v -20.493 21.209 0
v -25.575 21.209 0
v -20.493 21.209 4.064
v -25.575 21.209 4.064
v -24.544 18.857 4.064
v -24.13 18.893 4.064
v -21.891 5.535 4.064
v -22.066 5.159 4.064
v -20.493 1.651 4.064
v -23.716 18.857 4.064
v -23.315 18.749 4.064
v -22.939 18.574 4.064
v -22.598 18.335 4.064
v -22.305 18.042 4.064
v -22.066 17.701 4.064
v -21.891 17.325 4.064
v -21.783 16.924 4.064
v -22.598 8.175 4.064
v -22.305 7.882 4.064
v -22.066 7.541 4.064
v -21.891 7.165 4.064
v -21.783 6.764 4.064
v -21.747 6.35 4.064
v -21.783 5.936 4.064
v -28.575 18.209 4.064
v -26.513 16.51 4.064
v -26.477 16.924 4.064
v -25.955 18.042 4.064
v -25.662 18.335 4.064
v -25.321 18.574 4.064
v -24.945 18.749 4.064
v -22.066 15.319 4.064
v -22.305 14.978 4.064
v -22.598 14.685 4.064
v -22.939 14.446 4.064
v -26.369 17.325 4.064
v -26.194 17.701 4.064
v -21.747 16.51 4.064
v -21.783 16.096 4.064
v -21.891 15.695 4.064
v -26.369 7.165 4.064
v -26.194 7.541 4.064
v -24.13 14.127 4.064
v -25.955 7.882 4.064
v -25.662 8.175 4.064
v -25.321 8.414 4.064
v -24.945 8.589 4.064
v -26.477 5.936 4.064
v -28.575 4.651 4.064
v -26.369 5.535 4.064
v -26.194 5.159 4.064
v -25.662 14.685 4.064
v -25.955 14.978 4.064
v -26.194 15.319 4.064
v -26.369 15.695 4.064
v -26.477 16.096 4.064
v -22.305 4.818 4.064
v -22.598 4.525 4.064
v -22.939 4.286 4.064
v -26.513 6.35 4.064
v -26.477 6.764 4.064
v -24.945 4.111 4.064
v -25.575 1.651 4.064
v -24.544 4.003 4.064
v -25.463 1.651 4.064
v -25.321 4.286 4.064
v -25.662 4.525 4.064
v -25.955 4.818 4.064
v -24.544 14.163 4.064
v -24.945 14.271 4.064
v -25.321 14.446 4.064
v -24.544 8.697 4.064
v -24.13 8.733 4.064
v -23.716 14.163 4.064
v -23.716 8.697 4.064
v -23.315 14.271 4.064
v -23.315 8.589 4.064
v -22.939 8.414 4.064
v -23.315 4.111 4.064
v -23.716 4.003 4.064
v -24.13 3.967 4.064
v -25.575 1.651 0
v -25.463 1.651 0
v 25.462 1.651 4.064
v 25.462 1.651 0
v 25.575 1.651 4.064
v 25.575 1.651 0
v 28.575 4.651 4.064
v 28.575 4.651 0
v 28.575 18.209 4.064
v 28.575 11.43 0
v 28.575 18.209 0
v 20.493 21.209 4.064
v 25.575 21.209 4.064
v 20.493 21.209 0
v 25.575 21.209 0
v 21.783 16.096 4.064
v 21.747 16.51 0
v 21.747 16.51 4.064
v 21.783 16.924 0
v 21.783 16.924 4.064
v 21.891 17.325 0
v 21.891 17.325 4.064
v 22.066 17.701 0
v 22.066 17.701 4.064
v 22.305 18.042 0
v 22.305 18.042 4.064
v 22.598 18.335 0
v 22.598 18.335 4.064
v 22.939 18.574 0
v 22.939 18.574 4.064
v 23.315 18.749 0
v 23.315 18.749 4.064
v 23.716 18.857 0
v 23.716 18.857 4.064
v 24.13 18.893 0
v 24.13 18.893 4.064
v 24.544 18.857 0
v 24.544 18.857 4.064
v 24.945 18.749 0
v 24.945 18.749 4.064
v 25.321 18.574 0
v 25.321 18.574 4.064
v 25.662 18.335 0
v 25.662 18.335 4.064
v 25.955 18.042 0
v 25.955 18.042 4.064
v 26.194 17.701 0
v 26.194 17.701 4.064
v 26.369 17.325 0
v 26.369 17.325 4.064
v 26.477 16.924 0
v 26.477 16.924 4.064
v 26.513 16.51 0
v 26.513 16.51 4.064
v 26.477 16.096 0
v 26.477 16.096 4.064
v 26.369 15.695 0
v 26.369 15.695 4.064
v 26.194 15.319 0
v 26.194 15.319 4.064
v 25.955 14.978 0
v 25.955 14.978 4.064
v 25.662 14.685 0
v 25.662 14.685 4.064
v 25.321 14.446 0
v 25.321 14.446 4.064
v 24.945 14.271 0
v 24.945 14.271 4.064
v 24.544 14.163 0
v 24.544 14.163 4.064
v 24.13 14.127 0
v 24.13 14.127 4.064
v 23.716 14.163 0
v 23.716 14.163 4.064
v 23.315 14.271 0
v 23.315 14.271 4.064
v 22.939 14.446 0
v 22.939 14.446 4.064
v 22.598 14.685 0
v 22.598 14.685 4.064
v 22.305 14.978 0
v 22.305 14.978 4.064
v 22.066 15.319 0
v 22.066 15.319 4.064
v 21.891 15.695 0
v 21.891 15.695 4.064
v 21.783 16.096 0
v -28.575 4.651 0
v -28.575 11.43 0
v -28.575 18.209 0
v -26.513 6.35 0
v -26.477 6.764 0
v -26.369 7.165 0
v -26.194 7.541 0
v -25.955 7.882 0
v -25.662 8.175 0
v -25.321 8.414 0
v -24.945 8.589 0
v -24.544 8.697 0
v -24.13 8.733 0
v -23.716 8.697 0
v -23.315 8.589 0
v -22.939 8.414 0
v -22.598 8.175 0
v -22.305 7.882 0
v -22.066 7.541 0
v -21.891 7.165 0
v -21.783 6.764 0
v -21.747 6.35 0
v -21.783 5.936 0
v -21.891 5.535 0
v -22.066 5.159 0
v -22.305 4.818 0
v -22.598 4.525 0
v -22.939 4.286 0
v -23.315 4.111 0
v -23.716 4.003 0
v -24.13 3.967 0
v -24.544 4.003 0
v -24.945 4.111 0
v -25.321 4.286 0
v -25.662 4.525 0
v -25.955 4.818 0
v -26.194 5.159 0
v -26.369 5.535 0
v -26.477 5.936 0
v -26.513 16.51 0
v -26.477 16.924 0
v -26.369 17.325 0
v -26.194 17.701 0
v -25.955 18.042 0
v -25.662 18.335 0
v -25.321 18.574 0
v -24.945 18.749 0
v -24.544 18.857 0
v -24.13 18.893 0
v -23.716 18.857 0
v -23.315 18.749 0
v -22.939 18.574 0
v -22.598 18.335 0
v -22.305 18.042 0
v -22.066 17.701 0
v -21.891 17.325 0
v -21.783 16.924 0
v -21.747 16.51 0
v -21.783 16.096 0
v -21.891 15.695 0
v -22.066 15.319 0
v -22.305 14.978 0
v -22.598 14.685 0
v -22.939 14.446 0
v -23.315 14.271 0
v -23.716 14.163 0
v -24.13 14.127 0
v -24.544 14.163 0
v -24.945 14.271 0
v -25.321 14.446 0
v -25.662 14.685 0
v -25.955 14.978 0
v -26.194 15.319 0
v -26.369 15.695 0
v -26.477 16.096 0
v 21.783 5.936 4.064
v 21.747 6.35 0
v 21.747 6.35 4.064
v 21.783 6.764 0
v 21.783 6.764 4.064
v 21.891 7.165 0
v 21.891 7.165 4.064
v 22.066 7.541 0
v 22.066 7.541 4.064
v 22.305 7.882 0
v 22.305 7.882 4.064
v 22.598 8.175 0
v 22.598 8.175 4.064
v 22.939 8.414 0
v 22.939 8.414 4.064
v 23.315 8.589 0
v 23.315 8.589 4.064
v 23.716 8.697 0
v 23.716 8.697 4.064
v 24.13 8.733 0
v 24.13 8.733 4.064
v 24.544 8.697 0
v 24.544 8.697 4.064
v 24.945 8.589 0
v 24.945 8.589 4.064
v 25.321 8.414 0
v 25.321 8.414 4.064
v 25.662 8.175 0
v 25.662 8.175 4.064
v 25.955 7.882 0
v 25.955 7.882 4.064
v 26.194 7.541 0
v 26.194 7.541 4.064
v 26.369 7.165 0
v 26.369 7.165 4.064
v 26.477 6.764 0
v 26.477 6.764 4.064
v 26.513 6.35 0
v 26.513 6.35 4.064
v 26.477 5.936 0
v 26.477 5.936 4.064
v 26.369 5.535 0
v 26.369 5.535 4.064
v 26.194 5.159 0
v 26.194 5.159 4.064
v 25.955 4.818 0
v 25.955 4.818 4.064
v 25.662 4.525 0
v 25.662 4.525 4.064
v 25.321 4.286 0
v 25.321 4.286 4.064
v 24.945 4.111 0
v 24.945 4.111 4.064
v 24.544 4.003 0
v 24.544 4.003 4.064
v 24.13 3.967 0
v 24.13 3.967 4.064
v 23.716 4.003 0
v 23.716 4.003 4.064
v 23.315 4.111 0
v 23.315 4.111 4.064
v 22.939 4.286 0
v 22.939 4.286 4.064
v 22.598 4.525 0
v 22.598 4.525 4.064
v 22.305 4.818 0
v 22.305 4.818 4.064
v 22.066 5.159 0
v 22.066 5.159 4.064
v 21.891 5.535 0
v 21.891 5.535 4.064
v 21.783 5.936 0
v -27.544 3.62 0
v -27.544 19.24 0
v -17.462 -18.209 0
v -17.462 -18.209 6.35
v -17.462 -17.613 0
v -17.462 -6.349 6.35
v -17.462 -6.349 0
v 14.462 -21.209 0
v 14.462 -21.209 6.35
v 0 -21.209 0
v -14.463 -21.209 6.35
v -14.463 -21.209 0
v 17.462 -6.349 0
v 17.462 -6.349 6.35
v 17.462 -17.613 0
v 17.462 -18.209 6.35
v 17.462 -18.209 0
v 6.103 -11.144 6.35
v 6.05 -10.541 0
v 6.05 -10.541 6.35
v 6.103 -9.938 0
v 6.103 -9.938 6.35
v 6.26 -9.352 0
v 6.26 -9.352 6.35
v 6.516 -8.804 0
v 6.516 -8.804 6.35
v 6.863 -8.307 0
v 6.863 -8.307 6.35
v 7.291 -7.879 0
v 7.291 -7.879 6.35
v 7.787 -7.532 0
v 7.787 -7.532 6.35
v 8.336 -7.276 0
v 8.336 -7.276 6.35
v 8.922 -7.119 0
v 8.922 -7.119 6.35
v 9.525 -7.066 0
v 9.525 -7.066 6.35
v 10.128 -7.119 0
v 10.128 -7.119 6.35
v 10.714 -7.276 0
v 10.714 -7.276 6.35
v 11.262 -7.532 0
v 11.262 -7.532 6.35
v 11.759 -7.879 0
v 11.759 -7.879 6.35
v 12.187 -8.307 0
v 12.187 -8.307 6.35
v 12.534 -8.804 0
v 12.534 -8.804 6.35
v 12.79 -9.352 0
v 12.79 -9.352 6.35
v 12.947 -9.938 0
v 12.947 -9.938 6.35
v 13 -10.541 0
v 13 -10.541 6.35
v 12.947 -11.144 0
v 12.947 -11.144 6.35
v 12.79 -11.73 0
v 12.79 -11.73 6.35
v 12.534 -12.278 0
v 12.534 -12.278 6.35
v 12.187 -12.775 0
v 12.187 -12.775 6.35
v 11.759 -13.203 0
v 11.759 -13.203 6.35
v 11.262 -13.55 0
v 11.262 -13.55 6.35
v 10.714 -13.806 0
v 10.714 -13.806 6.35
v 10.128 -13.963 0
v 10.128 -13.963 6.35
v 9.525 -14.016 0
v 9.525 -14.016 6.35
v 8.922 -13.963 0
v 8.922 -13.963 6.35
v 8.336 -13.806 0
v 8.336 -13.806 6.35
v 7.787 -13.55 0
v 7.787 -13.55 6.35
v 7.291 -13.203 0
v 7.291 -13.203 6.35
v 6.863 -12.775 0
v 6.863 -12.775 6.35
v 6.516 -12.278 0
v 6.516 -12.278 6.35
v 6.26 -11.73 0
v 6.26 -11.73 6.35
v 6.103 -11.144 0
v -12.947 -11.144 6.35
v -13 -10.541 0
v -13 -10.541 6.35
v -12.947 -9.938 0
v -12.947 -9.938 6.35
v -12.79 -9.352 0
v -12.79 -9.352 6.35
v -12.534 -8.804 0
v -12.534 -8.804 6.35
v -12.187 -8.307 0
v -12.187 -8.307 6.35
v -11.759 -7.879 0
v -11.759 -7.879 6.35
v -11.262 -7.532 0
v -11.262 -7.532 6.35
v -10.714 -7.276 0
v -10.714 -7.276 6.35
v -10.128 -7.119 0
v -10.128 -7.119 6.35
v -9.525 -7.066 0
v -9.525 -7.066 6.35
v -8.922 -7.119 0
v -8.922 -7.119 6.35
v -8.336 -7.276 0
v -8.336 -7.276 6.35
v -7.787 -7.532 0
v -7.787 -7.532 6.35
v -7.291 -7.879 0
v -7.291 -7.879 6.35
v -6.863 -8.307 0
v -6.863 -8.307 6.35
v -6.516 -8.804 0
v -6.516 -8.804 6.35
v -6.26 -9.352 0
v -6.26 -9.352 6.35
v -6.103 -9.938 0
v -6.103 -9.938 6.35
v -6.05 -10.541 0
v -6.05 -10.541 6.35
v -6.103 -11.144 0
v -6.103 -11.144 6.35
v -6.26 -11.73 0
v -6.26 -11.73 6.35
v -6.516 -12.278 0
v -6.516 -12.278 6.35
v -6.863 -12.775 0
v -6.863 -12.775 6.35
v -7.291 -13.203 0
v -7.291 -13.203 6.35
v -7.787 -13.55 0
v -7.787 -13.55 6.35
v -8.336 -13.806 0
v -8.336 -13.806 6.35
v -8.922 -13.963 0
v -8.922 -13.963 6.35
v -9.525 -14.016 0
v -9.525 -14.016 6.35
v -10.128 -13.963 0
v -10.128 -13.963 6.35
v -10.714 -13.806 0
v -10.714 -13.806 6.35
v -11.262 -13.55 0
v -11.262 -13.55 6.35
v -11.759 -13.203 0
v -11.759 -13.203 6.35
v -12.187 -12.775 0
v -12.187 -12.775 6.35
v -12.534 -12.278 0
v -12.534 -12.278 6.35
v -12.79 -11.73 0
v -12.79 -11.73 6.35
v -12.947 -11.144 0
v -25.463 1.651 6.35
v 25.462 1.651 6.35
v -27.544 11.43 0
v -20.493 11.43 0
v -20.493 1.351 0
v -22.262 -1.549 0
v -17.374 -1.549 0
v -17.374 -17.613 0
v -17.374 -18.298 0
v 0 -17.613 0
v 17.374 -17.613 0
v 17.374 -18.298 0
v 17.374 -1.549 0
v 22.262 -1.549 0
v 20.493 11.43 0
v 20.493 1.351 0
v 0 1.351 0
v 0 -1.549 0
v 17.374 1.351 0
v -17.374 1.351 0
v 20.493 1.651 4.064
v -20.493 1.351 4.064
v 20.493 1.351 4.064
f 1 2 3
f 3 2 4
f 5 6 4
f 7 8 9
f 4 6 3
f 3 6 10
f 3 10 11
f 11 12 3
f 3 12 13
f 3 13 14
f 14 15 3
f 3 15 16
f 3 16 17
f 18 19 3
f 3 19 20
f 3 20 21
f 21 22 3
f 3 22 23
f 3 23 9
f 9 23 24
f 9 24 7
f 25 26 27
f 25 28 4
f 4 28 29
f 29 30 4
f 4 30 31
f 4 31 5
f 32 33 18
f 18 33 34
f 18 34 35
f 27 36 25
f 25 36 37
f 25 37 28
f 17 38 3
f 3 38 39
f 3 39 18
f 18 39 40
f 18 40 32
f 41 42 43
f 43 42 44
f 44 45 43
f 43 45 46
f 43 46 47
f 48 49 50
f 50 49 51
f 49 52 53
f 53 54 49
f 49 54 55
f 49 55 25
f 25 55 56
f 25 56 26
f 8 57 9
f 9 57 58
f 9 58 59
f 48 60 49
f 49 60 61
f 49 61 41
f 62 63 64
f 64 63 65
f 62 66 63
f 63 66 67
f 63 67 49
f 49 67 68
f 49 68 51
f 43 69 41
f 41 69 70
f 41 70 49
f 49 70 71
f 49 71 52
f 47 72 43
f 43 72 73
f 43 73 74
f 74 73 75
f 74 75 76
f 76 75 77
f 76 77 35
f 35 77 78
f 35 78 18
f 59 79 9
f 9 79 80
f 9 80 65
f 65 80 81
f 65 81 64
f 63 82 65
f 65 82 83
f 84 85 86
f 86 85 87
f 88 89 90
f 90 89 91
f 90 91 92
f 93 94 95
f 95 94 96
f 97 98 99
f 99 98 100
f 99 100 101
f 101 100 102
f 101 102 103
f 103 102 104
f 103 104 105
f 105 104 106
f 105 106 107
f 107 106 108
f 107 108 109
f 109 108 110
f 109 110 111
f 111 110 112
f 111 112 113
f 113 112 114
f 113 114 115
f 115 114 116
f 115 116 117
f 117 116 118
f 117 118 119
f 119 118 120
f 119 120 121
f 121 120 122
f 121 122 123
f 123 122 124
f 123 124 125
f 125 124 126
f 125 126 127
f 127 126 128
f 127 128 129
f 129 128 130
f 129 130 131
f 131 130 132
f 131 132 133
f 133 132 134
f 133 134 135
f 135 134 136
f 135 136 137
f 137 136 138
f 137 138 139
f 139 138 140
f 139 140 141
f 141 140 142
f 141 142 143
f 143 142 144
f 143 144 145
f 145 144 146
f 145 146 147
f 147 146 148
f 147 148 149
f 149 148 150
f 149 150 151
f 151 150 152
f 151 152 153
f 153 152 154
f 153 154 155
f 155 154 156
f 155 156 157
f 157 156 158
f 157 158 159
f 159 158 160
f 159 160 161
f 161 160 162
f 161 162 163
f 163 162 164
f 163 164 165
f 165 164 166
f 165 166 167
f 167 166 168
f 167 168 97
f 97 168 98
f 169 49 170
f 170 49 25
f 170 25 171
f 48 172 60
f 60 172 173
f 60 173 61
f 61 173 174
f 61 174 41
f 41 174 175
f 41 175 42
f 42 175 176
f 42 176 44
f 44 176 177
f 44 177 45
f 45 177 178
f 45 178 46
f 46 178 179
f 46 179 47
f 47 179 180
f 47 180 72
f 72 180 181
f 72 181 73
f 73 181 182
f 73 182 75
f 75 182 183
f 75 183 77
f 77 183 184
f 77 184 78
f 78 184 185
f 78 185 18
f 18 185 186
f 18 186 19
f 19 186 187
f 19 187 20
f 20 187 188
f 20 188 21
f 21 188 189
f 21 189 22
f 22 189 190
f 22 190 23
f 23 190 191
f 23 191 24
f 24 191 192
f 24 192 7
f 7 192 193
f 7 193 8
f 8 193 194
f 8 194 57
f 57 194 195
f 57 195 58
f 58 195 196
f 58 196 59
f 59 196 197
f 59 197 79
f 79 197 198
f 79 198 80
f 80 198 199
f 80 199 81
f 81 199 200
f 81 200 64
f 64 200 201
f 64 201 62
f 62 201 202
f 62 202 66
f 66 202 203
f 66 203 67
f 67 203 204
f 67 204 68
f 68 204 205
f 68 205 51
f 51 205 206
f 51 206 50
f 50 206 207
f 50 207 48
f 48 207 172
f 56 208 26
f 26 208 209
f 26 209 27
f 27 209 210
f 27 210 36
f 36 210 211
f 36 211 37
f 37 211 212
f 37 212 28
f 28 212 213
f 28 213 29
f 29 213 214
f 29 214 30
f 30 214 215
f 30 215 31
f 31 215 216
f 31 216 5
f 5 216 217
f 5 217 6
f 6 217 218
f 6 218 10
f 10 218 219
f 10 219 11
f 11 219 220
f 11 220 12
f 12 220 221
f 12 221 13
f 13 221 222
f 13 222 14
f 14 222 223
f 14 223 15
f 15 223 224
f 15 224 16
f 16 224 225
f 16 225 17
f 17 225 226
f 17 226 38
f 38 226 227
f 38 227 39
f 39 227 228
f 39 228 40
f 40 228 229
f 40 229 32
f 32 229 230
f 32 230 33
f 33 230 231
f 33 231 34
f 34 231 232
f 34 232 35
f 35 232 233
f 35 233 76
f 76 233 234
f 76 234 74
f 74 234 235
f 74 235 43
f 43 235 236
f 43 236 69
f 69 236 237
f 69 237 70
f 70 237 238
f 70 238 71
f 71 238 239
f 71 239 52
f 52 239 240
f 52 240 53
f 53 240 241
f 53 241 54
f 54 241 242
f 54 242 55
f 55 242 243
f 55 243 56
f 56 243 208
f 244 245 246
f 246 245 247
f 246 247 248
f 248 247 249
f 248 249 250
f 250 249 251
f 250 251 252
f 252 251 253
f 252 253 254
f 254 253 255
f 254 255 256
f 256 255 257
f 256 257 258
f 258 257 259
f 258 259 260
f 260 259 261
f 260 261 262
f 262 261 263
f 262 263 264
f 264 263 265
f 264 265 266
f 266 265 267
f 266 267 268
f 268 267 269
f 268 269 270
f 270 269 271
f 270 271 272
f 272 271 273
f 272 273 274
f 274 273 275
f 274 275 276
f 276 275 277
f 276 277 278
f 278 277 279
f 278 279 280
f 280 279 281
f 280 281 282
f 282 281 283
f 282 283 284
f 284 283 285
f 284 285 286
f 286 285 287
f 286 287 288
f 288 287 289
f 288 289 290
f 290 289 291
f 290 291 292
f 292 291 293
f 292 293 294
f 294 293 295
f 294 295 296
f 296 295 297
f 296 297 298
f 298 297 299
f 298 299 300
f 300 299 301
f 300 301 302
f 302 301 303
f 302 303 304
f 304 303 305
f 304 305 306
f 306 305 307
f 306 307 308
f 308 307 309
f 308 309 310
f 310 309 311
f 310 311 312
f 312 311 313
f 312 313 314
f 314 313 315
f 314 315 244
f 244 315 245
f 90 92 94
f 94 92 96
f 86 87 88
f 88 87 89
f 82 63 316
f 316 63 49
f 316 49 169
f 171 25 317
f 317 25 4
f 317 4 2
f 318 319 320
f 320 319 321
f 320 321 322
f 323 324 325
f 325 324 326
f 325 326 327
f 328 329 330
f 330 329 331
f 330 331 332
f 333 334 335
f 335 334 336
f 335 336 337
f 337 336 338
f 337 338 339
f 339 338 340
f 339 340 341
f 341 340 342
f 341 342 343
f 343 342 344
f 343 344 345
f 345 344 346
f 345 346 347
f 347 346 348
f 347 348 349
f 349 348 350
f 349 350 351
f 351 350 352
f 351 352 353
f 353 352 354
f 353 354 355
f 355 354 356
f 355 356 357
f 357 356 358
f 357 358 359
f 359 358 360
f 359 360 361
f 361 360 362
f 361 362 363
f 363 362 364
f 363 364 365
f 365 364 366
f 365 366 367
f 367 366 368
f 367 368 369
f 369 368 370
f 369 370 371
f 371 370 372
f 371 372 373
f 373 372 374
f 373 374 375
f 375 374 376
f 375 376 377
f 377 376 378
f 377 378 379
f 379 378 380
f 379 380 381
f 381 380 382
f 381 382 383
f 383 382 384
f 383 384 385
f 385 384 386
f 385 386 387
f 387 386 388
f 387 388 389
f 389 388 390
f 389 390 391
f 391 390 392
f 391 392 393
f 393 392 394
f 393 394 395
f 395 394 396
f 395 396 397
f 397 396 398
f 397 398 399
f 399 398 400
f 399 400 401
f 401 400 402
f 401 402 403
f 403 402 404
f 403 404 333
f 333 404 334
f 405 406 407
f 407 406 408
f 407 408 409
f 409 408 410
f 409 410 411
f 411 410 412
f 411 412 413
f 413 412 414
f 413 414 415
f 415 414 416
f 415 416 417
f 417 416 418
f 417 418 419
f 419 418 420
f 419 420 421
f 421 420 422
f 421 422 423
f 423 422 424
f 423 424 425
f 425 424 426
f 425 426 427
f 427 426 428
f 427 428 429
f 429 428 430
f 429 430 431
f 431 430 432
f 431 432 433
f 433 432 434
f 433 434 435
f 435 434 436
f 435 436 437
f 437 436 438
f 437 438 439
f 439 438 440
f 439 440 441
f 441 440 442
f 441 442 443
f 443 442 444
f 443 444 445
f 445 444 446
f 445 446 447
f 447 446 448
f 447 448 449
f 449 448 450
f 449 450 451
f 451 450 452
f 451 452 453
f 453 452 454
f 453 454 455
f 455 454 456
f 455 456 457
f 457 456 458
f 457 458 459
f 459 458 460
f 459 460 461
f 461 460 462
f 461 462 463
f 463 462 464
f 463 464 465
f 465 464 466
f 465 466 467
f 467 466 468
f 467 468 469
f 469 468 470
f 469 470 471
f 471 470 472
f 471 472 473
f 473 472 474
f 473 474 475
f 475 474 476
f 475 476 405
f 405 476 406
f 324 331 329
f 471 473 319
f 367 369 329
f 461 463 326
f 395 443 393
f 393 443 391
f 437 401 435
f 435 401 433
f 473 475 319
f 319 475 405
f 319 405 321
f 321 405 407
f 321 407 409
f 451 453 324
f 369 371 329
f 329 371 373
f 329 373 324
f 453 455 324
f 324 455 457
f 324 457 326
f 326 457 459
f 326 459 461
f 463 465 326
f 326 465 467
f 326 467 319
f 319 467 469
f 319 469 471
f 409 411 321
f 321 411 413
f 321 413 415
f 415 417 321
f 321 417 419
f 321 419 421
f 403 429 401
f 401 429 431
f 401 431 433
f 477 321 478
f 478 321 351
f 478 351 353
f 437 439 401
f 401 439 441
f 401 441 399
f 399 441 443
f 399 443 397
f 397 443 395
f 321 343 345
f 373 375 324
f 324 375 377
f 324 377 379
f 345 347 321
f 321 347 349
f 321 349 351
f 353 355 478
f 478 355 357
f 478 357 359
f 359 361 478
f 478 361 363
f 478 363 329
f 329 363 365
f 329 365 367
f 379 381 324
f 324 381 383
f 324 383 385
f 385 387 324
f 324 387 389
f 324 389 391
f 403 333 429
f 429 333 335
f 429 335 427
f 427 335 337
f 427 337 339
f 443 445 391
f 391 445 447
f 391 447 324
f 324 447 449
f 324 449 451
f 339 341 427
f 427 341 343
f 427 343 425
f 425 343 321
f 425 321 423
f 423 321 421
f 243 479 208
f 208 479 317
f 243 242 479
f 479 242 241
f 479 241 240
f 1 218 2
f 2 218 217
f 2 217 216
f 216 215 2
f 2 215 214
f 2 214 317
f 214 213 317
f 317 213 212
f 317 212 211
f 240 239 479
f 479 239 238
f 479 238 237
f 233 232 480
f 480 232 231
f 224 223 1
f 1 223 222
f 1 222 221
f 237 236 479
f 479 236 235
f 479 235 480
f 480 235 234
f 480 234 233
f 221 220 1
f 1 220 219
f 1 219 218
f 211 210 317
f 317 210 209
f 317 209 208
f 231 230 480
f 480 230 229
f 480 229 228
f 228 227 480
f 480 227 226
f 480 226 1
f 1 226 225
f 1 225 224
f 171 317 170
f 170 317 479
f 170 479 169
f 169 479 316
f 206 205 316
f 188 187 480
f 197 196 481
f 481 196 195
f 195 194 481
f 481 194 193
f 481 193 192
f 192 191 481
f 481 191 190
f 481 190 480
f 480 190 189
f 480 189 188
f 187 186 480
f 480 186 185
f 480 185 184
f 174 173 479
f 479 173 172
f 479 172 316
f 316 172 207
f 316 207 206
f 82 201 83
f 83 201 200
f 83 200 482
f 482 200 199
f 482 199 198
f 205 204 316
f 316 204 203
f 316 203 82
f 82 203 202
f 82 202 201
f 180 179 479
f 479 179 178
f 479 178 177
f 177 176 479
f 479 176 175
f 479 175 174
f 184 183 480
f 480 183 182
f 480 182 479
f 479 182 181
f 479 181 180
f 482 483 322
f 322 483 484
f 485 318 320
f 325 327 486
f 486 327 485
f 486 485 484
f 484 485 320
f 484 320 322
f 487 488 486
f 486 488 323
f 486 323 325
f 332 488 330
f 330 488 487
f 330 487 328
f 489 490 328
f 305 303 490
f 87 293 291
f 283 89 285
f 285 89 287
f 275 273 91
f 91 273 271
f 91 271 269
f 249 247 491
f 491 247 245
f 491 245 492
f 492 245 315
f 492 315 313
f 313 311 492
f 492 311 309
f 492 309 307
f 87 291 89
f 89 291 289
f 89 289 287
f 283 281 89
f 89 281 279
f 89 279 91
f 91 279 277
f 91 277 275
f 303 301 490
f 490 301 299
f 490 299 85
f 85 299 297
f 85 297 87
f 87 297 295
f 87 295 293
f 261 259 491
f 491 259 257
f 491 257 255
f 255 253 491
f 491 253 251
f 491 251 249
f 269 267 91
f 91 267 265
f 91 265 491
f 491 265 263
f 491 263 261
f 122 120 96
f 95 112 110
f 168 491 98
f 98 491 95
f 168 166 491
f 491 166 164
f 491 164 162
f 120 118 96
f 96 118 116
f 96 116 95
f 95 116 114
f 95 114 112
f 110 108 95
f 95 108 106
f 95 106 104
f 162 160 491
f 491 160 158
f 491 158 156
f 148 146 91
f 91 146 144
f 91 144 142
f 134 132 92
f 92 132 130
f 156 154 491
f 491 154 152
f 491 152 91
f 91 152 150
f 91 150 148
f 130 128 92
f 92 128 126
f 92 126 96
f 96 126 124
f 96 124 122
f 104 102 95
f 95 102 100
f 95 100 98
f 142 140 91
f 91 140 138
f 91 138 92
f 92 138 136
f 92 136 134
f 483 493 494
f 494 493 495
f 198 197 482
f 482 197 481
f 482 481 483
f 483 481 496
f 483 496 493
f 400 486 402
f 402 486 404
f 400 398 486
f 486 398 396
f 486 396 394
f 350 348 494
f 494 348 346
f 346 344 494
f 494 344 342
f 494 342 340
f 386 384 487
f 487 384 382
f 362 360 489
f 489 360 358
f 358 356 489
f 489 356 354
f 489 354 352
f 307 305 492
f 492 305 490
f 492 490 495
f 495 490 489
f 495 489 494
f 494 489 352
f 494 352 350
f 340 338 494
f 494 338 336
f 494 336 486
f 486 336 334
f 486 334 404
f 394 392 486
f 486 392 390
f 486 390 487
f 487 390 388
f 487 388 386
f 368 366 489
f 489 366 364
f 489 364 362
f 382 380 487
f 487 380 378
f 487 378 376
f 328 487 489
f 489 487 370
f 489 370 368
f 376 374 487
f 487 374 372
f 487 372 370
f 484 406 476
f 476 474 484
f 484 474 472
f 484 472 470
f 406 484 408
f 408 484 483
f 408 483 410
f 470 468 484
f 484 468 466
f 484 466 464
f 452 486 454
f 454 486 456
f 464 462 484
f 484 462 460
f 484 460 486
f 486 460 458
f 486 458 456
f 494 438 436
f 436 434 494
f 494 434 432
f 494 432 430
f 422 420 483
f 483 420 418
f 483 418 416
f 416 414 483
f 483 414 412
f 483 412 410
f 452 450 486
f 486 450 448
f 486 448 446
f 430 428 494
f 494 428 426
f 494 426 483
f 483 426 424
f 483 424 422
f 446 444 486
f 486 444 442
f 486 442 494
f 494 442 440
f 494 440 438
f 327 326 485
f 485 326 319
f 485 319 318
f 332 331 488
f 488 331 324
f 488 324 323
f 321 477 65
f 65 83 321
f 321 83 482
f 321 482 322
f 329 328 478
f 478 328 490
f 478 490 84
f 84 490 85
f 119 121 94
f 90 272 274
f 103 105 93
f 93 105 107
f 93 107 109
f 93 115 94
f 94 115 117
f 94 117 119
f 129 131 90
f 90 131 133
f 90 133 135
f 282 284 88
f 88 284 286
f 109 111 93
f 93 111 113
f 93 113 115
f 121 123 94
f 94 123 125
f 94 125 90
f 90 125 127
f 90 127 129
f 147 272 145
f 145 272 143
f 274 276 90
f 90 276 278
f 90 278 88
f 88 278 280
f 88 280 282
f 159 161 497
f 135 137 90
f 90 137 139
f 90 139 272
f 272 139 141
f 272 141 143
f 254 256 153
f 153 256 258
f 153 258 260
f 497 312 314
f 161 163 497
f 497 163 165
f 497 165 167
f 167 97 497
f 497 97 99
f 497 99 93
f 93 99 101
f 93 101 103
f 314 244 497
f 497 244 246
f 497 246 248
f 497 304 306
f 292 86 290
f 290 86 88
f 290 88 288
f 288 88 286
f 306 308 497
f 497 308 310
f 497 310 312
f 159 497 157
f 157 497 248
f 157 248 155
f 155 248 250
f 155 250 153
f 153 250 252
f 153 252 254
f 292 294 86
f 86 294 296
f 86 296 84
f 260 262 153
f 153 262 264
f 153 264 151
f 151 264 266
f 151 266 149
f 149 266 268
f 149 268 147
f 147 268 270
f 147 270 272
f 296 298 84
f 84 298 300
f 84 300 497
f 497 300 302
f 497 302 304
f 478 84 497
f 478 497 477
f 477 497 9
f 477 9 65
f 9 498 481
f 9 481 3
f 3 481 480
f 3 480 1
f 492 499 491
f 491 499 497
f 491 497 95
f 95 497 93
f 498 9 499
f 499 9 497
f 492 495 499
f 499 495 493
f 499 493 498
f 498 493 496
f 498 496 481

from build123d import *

# Parameters (mm, degrees)
SKETCH1_R           = 3.475
SKETCH1_R_2         = 2.3828
BOSS_EXTRUDE1_DEPTH = 6.35
CHAMFER1_SIZE       = 3
CHAMFER2_SIZE       = 8
CUT_EXTRUDE1_DEPTH  = 2.286
SKETCH4_W           = 40.986
SKETCH4_H           = 20.158
CUT_EXTRUDE2_DEPTH  = 36.817152344


with BuildPart() as part:
    # Sketch1 → Boss-Extrude1 (new body)
    with BuildSketch(Plane.XY):
        Polygon((17.4625, -21.209), (-17.4625, -21.209), (-17.4625, 1.651), (-28.575, 1.651), (-28.575, 21.209), (28.575, 21.209), (28.575, 1.651), (17.4625, 1.651), align=None)
        with Locations((-9.525, -10.541)):
            Circle(SKETCH1_R, mode=Mode.SUBTRACT)
        with Locations((9.525, -10.541)):
            Circle(SKETCH1_R, mode=Mode.SUBTRACT)
        with Locations((-24.13, 6.35)):
            Circle(SKETCH1_R_2, mode=Mode.SUBTRACT)
        with Locations((-24.13, 16.51)):
            Circle(SKETCH1_R_2, mode=Mode.SUBTRACT)
        with Locations((24.13, 16.51)):
            Circle(SKETCH1_R_2, mode=Mode.SUBTRACT)
        with Locations((24.13, 6.35)):
            Circle(SKETCH1_R_2, mode=Mode.SUBTRACT)
    extrude(amount=BOSS_EXTRUDE1_DEPTH)

    # Chamfer1
    chamfer1_edges = [part.edges().sort_by_distance(p)[0] for p in [
        (-28.575, 1.651, 3.175),
        (-28.575, 21.209, 3.175),
        (28.575, 21.209, 3.175),
        (28.575, 1.651, 3.175),
        (17.4625, -21.209, 3.175),
        (-17.4625, -21.209, 3.175),
    ]]
    chamfer(chamfer1_edges, length=CHAMFER1_SIZE)

    # Chamfer2
    chamfer2_edges = [part.edges().sort_by_distance(p)[0] for p in [
        (17.4625, 1.651, 3.175),
        (-17.4625, 1.651, 3.175),
    ]]
    chamfer(chamfer2_edges, length=CHAMFER2_SIZE)

    # Sketch3 → Cut-Extrude1 (cut)
    with BuildSketch(Plane.XY.offset(6.35)):
        Polygon((-25.4625, 1.651), (25.4625, 1.651), (25.575, 1.651), (28.575, 4.651), (28.575, 18.209), (25.575, 21.209), (-25.575, 21.209), (-28.575, 18.209), (-28.575, 4.651), (-25.575, 1.651), align=None)
    extrude(amount=-CUT_EXTRUDE1_DEPTH, mode=Mode.SUBTRACT)

    # Sketch4 → Cut-Extrude2 (cut, through all)
    with BuildSketch(Plane.XY.offset(4.064)):
        with Locations((0, 11.43)):
            Rectangle(SKETCH4_W, SKETCH4_H)
    extrude(amount=-CUT_EXTRUDE2_DEPTH, mode=Mode.SUBTRACT)


solid = part.part
